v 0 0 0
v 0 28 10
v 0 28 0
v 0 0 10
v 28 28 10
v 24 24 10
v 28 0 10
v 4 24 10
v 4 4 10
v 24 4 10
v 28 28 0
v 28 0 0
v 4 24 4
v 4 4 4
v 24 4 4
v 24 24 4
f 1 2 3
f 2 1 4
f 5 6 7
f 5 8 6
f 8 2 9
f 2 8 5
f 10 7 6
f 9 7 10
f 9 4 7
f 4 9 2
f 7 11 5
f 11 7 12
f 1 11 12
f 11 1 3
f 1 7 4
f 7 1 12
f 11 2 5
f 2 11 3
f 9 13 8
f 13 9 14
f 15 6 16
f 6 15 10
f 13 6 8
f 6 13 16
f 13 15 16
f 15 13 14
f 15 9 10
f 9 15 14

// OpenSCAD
difference() {
    cube([28,28,10]);
    
    translate([4,4,4])
    cube([20,20,100]);
}
